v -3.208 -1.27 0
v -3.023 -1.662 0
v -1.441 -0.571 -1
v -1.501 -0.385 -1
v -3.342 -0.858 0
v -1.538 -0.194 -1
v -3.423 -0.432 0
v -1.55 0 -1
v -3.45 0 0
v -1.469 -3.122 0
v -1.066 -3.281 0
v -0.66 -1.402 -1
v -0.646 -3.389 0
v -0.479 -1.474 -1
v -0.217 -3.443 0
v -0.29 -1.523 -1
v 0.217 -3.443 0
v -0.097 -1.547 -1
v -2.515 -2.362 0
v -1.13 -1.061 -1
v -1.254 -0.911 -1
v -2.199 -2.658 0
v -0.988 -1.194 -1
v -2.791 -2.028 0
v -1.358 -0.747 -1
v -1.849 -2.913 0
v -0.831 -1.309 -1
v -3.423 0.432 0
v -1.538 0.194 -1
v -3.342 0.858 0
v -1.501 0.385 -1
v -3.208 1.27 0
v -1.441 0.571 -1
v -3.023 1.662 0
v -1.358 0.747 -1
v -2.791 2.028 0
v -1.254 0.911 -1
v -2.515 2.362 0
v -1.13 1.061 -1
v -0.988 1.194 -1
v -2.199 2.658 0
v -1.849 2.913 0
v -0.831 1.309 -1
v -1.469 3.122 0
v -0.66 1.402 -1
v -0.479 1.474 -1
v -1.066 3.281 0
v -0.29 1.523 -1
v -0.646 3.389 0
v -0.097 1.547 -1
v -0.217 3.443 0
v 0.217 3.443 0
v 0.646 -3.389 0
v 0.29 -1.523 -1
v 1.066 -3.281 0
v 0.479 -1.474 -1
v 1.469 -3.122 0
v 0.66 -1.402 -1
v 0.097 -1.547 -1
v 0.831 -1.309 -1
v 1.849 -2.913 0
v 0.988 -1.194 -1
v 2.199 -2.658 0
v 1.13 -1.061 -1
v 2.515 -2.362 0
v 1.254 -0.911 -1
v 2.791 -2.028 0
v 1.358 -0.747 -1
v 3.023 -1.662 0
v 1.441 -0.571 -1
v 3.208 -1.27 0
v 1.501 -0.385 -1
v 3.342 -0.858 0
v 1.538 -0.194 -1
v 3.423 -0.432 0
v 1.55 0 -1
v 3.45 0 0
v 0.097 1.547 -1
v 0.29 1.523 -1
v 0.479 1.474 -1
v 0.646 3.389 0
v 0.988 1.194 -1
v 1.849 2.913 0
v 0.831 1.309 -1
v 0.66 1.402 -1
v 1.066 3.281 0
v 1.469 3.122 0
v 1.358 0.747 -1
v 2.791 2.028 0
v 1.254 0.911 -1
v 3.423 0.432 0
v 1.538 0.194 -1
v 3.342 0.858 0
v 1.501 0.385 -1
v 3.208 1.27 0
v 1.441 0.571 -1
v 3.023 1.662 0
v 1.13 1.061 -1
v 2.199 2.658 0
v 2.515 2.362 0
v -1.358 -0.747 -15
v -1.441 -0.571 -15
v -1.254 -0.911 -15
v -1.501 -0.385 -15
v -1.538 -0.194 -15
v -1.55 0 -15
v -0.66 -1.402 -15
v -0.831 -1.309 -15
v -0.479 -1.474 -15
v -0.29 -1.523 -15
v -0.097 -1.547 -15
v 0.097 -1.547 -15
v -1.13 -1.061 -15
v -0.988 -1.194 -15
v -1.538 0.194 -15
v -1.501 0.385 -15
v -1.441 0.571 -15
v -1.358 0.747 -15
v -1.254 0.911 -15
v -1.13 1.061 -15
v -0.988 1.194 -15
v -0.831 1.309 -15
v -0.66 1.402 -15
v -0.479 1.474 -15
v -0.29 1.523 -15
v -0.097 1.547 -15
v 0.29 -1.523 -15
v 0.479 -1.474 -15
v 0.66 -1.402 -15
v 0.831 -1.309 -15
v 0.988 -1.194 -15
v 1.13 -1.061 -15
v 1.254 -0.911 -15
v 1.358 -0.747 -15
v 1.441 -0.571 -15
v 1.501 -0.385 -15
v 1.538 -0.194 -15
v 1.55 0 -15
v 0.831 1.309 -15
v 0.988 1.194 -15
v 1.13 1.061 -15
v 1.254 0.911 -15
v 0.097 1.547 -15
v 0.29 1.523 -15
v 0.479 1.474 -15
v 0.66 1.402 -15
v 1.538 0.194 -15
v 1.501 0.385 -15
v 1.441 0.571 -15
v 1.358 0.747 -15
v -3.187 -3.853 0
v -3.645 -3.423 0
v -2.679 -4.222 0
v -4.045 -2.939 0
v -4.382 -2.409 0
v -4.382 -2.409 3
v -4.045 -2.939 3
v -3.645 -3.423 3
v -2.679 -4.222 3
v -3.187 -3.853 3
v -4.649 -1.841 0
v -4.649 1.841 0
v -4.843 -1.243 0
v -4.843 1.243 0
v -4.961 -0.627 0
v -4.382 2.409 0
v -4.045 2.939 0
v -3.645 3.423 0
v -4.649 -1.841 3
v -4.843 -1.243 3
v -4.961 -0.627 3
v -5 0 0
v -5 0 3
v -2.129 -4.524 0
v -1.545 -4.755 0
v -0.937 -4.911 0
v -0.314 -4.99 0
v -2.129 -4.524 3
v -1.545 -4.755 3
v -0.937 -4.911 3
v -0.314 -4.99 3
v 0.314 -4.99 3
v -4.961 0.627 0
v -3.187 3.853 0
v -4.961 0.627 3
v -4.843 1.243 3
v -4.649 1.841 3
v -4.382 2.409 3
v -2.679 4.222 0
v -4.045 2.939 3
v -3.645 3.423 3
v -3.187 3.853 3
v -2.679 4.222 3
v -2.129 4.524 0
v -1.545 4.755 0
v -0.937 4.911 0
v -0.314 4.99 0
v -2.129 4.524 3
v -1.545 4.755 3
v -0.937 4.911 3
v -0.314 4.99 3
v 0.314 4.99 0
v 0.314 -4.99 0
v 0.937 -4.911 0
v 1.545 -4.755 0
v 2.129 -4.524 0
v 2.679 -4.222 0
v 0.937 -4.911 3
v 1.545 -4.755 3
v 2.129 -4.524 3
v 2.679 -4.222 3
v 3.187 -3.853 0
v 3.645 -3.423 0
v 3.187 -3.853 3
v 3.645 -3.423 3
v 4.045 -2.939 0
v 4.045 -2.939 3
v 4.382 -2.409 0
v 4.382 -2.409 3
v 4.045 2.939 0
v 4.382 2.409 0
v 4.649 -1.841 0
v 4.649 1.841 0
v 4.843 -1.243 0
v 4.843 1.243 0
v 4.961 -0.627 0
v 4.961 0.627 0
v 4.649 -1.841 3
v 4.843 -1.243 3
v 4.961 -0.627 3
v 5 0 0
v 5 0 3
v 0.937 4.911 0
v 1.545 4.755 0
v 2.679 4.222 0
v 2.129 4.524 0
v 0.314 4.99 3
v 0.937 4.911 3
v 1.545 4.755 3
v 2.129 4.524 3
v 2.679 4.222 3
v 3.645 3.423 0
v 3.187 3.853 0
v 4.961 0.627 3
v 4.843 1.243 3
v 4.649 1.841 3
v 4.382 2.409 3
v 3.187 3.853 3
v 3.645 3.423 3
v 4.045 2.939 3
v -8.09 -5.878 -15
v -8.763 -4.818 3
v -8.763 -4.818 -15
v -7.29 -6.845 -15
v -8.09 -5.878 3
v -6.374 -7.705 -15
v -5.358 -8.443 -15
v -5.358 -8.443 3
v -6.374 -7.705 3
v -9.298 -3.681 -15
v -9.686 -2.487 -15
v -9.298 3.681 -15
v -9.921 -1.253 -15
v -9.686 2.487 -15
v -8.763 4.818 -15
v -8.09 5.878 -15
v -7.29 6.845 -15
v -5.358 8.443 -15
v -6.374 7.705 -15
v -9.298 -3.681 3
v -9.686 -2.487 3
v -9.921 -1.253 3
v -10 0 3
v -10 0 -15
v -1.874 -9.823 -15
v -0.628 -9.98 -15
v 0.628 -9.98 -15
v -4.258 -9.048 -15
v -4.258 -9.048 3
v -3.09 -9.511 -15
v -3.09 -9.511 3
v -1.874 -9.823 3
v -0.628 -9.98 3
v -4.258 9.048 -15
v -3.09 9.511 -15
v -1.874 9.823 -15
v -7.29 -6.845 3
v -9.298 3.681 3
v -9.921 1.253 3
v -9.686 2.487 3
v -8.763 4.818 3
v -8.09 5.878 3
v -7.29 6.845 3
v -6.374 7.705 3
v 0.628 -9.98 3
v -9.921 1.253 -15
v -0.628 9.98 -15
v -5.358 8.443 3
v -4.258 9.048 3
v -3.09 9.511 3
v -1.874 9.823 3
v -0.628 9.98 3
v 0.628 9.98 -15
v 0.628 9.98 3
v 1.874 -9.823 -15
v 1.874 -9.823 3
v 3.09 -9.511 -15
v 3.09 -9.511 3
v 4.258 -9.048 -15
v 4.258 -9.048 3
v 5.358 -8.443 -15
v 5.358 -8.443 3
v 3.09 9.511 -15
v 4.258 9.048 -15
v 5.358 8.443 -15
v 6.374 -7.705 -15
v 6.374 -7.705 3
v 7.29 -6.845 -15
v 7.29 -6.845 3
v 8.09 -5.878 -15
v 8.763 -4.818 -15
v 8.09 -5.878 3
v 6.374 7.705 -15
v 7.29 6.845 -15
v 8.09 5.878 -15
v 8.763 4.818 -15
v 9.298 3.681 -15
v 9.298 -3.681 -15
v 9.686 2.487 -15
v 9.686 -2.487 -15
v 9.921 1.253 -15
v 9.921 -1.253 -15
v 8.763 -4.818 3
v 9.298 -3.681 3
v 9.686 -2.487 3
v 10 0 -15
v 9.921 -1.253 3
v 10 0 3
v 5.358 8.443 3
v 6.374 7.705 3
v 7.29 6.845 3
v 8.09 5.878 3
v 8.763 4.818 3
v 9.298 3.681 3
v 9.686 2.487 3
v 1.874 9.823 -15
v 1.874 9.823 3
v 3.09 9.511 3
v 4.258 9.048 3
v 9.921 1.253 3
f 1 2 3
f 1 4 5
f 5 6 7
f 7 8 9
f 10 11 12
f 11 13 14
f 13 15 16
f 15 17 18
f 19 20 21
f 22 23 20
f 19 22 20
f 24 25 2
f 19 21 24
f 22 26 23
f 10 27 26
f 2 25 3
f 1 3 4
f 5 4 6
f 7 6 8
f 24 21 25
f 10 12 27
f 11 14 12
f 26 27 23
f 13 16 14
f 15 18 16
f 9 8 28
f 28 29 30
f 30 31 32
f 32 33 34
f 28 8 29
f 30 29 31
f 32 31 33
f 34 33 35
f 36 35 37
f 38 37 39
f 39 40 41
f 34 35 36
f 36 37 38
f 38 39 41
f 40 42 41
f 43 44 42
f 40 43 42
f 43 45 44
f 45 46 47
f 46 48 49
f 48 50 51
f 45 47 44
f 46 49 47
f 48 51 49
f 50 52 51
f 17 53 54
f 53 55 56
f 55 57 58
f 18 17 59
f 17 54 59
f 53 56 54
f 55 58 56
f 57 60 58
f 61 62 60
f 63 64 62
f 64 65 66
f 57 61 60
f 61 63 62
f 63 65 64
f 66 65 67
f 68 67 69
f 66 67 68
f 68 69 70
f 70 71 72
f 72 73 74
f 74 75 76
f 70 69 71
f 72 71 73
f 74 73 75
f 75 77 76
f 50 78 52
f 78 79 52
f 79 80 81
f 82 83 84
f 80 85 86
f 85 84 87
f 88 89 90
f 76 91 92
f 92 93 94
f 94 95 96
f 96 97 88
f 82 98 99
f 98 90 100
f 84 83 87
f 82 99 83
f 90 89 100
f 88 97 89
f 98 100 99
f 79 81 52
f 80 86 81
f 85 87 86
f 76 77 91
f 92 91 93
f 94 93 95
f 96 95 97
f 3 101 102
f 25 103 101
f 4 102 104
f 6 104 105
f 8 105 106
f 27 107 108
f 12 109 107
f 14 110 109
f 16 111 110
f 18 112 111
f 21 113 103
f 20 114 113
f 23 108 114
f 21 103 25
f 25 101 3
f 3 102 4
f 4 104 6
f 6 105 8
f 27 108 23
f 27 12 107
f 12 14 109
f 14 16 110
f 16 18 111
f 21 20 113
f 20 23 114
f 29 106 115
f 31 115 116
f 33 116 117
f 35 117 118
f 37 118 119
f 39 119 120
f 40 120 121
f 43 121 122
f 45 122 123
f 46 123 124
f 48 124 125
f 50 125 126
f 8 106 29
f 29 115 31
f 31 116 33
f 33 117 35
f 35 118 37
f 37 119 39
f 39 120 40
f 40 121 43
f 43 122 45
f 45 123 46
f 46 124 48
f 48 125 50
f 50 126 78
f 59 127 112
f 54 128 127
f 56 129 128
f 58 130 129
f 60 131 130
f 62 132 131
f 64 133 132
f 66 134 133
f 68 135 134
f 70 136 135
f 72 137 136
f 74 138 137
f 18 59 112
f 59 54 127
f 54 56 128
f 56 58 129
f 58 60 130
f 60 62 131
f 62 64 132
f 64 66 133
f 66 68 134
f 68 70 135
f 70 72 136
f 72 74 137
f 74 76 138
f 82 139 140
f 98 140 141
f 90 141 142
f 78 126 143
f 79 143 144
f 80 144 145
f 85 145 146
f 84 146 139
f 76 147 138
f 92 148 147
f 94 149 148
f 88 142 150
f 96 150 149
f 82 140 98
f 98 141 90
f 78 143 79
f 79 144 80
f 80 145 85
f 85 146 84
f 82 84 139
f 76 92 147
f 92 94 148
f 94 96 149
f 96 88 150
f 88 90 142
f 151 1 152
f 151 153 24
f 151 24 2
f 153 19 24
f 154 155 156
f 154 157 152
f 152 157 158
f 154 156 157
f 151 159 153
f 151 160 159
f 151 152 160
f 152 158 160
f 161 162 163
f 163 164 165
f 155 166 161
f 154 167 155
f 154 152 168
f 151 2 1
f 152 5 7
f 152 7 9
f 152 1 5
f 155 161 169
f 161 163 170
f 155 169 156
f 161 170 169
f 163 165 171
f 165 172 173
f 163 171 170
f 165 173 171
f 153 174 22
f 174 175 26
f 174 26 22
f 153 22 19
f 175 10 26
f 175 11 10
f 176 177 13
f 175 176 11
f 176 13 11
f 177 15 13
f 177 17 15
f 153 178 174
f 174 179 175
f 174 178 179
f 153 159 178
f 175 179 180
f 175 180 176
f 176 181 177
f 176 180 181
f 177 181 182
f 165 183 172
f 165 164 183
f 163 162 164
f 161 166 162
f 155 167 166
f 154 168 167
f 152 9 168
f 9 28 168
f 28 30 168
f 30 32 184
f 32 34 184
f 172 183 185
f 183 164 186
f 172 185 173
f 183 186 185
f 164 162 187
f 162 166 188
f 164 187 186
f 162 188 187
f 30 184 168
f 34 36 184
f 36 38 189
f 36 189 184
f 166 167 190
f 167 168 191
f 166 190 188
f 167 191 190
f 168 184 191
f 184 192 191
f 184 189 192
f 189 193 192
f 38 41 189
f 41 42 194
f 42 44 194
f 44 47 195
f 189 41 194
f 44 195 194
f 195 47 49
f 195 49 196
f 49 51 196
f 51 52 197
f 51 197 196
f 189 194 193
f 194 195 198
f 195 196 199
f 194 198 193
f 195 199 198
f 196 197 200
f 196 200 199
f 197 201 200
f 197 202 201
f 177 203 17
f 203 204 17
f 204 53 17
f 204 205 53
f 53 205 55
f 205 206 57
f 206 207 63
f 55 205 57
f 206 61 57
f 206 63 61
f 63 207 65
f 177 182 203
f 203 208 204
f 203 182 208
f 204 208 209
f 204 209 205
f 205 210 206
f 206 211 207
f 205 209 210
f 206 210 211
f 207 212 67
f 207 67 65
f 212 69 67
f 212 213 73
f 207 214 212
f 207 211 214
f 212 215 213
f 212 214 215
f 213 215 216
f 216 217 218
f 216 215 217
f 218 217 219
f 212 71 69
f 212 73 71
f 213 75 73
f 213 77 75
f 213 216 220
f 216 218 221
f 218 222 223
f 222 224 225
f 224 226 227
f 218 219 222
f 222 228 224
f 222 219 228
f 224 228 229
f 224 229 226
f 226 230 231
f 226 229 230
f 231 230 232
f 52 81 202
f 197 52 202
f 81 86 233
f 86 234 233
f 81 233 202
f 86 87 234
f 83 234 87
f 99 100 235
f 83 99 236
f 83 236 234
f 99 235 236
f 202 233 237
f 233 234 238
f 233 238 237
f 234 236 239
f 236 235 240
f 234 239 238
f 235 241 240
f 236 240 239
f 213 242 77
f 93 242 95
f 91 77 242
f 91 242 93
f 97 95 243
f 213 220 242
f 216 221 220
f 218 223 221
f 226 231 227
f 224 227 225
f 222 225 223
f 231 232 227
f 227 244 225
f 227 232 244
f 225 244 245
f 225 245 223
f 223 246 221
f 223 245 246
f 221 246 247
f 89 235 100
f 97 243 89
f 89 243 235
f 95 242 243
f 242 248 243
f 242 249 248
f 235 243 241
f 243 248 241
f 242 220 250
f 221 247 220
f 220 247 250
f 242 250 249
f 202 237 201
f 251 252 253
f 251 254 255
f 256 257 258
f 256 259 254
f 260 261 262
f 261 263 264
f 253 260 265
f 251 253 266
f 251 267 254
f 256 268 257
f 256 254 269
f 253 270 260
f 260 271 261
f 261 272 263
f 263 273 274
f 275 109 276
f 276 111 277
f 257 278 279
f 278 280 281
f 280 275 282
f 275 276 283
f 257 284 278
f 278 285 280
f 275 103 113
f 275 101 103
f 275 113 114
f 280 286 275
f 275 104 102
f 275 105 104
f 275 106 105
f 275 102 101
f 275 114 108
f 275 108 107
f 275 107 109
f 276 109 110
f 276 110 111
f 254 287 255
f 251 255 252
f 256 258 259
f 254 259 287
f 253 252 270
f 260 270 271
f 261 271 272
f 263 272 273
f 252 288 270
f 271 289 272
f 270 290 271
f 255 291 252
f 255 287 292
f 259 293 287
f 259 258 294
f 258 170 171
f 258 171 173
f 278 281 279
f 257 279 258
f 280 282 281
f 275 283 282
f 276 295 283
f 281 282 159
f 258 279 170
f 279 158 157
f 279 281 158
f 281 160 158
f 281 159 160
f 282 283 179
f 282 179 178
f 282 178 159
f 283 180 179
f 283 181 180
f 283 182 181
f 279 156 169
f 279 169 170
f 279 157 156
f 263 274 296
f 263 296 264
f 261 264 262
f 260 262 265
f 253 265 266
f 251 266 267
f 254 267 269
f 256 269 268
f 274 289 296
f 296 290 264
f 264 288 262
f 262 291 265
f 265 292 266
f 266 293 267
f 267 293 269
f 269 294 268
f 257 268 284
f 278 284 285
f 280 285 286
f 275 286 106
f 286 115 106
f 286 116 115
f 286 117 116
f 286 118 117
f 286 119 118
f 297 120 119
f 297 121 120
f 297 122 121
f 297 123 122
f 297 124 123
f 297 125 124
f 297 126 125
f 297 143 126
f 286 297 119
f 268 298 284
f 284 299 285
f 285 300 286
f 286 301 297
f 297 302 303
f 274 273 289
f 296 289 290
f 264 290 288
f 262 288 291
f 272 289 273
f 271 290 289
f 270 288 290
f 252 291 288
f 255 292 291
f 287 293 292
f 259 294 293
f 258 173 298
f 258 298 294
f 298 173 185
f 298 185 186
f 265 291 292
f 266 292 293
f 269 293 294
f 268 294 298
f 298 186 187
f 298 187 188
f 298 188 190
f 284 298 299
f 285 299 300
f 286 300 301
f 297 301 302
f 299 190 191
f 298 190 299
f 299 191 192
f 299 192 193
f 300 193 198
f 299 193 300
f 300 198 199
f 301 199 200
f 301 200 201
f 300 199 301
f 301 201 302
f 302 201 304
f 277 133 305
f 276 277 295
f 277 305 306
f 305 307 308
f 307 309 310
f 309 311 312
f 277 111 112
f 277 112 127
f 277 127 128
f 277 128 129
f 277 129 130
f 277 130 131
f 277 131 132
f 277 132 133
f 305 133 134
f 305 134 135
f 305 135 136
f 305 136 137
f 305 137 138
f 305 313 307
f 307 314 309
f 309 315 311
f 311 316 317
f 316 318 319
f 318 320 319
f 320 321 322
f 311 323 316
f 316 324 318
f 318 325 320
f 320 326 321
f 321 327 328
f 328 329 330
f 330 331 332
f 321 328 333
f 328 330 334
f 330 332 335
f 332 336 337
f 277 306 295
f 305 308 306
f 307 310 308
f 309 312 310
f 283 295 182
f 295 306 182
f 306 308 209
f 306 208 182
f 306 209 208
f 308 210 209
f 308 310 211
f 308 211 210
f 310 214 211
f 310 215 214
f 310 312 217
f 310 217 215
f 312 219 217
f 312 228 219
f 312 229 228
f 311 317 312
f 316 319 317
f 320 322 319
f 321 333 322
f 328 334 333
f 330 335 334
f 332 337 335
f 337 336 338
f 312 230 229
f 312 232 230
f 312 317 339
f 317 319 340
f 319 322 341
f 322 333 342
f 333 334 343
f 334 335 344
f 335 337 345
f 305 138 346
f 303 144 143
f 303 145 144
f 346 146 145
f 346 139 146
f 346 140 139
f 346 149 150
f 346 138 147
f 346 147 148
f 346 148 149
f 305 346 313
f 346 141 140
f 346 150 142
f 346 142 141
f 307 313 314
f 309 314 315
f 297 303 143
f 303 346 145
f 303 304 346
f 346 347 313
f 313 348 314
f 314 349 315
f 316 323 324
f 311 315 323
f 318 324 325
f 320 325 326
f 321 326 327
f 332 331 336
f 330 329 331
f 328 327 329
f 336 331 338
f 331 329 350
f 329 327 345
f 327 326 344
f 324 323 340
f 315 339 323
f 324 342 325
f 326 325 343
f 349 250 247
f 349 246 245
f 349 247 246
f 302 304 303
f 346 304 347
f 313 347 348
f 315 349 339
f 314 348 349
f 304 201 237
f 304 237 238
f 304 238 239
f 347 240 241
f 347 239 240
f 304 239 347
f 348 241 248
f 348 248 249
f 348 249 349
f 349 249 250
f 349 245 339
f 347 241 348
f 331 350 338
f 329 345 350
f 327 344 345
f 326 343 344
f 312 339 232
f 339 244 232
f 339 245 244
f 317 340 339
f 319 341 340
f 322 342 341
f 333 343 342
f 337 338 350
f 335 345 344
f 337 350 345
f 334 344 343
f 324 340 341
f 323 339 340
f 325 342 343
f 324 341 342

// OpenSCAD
$fn = 50;


difference() {
	union() {
		translate(v = [0, 0, -15.0000000000]) {
			cylinder(h = 18, r = 10.0000000000);
		}
	}
	union() {
		translate(v = [0, 0, 0]) {
			rotate(a = [0, 0, 0]) {
				difference() {
					union() {
						translate(v = [0, 0, -18.0000000000]) {
							cylinder(h = 18, r = 1.2500000000);
						}
						translate(v = [0, 0, -1.0000000000]) {
							cylinder(h = 1.0000000000, r1 = 1.5500000000, r2 = 3.4500000000);
						}
						translate(v = [0, 0, -18.0000000000]) {
							cylinder(h = 18, r = 1.5500000000);
						}
						translate(v = [0, 0, -18.0000000000]) {
							cylinder(h = 18, r = 1.2500000000);
						}
					}
					union();
				}
			}
		}
		#cylinder(h = 3, r = 5.0000000000);
	}
}
